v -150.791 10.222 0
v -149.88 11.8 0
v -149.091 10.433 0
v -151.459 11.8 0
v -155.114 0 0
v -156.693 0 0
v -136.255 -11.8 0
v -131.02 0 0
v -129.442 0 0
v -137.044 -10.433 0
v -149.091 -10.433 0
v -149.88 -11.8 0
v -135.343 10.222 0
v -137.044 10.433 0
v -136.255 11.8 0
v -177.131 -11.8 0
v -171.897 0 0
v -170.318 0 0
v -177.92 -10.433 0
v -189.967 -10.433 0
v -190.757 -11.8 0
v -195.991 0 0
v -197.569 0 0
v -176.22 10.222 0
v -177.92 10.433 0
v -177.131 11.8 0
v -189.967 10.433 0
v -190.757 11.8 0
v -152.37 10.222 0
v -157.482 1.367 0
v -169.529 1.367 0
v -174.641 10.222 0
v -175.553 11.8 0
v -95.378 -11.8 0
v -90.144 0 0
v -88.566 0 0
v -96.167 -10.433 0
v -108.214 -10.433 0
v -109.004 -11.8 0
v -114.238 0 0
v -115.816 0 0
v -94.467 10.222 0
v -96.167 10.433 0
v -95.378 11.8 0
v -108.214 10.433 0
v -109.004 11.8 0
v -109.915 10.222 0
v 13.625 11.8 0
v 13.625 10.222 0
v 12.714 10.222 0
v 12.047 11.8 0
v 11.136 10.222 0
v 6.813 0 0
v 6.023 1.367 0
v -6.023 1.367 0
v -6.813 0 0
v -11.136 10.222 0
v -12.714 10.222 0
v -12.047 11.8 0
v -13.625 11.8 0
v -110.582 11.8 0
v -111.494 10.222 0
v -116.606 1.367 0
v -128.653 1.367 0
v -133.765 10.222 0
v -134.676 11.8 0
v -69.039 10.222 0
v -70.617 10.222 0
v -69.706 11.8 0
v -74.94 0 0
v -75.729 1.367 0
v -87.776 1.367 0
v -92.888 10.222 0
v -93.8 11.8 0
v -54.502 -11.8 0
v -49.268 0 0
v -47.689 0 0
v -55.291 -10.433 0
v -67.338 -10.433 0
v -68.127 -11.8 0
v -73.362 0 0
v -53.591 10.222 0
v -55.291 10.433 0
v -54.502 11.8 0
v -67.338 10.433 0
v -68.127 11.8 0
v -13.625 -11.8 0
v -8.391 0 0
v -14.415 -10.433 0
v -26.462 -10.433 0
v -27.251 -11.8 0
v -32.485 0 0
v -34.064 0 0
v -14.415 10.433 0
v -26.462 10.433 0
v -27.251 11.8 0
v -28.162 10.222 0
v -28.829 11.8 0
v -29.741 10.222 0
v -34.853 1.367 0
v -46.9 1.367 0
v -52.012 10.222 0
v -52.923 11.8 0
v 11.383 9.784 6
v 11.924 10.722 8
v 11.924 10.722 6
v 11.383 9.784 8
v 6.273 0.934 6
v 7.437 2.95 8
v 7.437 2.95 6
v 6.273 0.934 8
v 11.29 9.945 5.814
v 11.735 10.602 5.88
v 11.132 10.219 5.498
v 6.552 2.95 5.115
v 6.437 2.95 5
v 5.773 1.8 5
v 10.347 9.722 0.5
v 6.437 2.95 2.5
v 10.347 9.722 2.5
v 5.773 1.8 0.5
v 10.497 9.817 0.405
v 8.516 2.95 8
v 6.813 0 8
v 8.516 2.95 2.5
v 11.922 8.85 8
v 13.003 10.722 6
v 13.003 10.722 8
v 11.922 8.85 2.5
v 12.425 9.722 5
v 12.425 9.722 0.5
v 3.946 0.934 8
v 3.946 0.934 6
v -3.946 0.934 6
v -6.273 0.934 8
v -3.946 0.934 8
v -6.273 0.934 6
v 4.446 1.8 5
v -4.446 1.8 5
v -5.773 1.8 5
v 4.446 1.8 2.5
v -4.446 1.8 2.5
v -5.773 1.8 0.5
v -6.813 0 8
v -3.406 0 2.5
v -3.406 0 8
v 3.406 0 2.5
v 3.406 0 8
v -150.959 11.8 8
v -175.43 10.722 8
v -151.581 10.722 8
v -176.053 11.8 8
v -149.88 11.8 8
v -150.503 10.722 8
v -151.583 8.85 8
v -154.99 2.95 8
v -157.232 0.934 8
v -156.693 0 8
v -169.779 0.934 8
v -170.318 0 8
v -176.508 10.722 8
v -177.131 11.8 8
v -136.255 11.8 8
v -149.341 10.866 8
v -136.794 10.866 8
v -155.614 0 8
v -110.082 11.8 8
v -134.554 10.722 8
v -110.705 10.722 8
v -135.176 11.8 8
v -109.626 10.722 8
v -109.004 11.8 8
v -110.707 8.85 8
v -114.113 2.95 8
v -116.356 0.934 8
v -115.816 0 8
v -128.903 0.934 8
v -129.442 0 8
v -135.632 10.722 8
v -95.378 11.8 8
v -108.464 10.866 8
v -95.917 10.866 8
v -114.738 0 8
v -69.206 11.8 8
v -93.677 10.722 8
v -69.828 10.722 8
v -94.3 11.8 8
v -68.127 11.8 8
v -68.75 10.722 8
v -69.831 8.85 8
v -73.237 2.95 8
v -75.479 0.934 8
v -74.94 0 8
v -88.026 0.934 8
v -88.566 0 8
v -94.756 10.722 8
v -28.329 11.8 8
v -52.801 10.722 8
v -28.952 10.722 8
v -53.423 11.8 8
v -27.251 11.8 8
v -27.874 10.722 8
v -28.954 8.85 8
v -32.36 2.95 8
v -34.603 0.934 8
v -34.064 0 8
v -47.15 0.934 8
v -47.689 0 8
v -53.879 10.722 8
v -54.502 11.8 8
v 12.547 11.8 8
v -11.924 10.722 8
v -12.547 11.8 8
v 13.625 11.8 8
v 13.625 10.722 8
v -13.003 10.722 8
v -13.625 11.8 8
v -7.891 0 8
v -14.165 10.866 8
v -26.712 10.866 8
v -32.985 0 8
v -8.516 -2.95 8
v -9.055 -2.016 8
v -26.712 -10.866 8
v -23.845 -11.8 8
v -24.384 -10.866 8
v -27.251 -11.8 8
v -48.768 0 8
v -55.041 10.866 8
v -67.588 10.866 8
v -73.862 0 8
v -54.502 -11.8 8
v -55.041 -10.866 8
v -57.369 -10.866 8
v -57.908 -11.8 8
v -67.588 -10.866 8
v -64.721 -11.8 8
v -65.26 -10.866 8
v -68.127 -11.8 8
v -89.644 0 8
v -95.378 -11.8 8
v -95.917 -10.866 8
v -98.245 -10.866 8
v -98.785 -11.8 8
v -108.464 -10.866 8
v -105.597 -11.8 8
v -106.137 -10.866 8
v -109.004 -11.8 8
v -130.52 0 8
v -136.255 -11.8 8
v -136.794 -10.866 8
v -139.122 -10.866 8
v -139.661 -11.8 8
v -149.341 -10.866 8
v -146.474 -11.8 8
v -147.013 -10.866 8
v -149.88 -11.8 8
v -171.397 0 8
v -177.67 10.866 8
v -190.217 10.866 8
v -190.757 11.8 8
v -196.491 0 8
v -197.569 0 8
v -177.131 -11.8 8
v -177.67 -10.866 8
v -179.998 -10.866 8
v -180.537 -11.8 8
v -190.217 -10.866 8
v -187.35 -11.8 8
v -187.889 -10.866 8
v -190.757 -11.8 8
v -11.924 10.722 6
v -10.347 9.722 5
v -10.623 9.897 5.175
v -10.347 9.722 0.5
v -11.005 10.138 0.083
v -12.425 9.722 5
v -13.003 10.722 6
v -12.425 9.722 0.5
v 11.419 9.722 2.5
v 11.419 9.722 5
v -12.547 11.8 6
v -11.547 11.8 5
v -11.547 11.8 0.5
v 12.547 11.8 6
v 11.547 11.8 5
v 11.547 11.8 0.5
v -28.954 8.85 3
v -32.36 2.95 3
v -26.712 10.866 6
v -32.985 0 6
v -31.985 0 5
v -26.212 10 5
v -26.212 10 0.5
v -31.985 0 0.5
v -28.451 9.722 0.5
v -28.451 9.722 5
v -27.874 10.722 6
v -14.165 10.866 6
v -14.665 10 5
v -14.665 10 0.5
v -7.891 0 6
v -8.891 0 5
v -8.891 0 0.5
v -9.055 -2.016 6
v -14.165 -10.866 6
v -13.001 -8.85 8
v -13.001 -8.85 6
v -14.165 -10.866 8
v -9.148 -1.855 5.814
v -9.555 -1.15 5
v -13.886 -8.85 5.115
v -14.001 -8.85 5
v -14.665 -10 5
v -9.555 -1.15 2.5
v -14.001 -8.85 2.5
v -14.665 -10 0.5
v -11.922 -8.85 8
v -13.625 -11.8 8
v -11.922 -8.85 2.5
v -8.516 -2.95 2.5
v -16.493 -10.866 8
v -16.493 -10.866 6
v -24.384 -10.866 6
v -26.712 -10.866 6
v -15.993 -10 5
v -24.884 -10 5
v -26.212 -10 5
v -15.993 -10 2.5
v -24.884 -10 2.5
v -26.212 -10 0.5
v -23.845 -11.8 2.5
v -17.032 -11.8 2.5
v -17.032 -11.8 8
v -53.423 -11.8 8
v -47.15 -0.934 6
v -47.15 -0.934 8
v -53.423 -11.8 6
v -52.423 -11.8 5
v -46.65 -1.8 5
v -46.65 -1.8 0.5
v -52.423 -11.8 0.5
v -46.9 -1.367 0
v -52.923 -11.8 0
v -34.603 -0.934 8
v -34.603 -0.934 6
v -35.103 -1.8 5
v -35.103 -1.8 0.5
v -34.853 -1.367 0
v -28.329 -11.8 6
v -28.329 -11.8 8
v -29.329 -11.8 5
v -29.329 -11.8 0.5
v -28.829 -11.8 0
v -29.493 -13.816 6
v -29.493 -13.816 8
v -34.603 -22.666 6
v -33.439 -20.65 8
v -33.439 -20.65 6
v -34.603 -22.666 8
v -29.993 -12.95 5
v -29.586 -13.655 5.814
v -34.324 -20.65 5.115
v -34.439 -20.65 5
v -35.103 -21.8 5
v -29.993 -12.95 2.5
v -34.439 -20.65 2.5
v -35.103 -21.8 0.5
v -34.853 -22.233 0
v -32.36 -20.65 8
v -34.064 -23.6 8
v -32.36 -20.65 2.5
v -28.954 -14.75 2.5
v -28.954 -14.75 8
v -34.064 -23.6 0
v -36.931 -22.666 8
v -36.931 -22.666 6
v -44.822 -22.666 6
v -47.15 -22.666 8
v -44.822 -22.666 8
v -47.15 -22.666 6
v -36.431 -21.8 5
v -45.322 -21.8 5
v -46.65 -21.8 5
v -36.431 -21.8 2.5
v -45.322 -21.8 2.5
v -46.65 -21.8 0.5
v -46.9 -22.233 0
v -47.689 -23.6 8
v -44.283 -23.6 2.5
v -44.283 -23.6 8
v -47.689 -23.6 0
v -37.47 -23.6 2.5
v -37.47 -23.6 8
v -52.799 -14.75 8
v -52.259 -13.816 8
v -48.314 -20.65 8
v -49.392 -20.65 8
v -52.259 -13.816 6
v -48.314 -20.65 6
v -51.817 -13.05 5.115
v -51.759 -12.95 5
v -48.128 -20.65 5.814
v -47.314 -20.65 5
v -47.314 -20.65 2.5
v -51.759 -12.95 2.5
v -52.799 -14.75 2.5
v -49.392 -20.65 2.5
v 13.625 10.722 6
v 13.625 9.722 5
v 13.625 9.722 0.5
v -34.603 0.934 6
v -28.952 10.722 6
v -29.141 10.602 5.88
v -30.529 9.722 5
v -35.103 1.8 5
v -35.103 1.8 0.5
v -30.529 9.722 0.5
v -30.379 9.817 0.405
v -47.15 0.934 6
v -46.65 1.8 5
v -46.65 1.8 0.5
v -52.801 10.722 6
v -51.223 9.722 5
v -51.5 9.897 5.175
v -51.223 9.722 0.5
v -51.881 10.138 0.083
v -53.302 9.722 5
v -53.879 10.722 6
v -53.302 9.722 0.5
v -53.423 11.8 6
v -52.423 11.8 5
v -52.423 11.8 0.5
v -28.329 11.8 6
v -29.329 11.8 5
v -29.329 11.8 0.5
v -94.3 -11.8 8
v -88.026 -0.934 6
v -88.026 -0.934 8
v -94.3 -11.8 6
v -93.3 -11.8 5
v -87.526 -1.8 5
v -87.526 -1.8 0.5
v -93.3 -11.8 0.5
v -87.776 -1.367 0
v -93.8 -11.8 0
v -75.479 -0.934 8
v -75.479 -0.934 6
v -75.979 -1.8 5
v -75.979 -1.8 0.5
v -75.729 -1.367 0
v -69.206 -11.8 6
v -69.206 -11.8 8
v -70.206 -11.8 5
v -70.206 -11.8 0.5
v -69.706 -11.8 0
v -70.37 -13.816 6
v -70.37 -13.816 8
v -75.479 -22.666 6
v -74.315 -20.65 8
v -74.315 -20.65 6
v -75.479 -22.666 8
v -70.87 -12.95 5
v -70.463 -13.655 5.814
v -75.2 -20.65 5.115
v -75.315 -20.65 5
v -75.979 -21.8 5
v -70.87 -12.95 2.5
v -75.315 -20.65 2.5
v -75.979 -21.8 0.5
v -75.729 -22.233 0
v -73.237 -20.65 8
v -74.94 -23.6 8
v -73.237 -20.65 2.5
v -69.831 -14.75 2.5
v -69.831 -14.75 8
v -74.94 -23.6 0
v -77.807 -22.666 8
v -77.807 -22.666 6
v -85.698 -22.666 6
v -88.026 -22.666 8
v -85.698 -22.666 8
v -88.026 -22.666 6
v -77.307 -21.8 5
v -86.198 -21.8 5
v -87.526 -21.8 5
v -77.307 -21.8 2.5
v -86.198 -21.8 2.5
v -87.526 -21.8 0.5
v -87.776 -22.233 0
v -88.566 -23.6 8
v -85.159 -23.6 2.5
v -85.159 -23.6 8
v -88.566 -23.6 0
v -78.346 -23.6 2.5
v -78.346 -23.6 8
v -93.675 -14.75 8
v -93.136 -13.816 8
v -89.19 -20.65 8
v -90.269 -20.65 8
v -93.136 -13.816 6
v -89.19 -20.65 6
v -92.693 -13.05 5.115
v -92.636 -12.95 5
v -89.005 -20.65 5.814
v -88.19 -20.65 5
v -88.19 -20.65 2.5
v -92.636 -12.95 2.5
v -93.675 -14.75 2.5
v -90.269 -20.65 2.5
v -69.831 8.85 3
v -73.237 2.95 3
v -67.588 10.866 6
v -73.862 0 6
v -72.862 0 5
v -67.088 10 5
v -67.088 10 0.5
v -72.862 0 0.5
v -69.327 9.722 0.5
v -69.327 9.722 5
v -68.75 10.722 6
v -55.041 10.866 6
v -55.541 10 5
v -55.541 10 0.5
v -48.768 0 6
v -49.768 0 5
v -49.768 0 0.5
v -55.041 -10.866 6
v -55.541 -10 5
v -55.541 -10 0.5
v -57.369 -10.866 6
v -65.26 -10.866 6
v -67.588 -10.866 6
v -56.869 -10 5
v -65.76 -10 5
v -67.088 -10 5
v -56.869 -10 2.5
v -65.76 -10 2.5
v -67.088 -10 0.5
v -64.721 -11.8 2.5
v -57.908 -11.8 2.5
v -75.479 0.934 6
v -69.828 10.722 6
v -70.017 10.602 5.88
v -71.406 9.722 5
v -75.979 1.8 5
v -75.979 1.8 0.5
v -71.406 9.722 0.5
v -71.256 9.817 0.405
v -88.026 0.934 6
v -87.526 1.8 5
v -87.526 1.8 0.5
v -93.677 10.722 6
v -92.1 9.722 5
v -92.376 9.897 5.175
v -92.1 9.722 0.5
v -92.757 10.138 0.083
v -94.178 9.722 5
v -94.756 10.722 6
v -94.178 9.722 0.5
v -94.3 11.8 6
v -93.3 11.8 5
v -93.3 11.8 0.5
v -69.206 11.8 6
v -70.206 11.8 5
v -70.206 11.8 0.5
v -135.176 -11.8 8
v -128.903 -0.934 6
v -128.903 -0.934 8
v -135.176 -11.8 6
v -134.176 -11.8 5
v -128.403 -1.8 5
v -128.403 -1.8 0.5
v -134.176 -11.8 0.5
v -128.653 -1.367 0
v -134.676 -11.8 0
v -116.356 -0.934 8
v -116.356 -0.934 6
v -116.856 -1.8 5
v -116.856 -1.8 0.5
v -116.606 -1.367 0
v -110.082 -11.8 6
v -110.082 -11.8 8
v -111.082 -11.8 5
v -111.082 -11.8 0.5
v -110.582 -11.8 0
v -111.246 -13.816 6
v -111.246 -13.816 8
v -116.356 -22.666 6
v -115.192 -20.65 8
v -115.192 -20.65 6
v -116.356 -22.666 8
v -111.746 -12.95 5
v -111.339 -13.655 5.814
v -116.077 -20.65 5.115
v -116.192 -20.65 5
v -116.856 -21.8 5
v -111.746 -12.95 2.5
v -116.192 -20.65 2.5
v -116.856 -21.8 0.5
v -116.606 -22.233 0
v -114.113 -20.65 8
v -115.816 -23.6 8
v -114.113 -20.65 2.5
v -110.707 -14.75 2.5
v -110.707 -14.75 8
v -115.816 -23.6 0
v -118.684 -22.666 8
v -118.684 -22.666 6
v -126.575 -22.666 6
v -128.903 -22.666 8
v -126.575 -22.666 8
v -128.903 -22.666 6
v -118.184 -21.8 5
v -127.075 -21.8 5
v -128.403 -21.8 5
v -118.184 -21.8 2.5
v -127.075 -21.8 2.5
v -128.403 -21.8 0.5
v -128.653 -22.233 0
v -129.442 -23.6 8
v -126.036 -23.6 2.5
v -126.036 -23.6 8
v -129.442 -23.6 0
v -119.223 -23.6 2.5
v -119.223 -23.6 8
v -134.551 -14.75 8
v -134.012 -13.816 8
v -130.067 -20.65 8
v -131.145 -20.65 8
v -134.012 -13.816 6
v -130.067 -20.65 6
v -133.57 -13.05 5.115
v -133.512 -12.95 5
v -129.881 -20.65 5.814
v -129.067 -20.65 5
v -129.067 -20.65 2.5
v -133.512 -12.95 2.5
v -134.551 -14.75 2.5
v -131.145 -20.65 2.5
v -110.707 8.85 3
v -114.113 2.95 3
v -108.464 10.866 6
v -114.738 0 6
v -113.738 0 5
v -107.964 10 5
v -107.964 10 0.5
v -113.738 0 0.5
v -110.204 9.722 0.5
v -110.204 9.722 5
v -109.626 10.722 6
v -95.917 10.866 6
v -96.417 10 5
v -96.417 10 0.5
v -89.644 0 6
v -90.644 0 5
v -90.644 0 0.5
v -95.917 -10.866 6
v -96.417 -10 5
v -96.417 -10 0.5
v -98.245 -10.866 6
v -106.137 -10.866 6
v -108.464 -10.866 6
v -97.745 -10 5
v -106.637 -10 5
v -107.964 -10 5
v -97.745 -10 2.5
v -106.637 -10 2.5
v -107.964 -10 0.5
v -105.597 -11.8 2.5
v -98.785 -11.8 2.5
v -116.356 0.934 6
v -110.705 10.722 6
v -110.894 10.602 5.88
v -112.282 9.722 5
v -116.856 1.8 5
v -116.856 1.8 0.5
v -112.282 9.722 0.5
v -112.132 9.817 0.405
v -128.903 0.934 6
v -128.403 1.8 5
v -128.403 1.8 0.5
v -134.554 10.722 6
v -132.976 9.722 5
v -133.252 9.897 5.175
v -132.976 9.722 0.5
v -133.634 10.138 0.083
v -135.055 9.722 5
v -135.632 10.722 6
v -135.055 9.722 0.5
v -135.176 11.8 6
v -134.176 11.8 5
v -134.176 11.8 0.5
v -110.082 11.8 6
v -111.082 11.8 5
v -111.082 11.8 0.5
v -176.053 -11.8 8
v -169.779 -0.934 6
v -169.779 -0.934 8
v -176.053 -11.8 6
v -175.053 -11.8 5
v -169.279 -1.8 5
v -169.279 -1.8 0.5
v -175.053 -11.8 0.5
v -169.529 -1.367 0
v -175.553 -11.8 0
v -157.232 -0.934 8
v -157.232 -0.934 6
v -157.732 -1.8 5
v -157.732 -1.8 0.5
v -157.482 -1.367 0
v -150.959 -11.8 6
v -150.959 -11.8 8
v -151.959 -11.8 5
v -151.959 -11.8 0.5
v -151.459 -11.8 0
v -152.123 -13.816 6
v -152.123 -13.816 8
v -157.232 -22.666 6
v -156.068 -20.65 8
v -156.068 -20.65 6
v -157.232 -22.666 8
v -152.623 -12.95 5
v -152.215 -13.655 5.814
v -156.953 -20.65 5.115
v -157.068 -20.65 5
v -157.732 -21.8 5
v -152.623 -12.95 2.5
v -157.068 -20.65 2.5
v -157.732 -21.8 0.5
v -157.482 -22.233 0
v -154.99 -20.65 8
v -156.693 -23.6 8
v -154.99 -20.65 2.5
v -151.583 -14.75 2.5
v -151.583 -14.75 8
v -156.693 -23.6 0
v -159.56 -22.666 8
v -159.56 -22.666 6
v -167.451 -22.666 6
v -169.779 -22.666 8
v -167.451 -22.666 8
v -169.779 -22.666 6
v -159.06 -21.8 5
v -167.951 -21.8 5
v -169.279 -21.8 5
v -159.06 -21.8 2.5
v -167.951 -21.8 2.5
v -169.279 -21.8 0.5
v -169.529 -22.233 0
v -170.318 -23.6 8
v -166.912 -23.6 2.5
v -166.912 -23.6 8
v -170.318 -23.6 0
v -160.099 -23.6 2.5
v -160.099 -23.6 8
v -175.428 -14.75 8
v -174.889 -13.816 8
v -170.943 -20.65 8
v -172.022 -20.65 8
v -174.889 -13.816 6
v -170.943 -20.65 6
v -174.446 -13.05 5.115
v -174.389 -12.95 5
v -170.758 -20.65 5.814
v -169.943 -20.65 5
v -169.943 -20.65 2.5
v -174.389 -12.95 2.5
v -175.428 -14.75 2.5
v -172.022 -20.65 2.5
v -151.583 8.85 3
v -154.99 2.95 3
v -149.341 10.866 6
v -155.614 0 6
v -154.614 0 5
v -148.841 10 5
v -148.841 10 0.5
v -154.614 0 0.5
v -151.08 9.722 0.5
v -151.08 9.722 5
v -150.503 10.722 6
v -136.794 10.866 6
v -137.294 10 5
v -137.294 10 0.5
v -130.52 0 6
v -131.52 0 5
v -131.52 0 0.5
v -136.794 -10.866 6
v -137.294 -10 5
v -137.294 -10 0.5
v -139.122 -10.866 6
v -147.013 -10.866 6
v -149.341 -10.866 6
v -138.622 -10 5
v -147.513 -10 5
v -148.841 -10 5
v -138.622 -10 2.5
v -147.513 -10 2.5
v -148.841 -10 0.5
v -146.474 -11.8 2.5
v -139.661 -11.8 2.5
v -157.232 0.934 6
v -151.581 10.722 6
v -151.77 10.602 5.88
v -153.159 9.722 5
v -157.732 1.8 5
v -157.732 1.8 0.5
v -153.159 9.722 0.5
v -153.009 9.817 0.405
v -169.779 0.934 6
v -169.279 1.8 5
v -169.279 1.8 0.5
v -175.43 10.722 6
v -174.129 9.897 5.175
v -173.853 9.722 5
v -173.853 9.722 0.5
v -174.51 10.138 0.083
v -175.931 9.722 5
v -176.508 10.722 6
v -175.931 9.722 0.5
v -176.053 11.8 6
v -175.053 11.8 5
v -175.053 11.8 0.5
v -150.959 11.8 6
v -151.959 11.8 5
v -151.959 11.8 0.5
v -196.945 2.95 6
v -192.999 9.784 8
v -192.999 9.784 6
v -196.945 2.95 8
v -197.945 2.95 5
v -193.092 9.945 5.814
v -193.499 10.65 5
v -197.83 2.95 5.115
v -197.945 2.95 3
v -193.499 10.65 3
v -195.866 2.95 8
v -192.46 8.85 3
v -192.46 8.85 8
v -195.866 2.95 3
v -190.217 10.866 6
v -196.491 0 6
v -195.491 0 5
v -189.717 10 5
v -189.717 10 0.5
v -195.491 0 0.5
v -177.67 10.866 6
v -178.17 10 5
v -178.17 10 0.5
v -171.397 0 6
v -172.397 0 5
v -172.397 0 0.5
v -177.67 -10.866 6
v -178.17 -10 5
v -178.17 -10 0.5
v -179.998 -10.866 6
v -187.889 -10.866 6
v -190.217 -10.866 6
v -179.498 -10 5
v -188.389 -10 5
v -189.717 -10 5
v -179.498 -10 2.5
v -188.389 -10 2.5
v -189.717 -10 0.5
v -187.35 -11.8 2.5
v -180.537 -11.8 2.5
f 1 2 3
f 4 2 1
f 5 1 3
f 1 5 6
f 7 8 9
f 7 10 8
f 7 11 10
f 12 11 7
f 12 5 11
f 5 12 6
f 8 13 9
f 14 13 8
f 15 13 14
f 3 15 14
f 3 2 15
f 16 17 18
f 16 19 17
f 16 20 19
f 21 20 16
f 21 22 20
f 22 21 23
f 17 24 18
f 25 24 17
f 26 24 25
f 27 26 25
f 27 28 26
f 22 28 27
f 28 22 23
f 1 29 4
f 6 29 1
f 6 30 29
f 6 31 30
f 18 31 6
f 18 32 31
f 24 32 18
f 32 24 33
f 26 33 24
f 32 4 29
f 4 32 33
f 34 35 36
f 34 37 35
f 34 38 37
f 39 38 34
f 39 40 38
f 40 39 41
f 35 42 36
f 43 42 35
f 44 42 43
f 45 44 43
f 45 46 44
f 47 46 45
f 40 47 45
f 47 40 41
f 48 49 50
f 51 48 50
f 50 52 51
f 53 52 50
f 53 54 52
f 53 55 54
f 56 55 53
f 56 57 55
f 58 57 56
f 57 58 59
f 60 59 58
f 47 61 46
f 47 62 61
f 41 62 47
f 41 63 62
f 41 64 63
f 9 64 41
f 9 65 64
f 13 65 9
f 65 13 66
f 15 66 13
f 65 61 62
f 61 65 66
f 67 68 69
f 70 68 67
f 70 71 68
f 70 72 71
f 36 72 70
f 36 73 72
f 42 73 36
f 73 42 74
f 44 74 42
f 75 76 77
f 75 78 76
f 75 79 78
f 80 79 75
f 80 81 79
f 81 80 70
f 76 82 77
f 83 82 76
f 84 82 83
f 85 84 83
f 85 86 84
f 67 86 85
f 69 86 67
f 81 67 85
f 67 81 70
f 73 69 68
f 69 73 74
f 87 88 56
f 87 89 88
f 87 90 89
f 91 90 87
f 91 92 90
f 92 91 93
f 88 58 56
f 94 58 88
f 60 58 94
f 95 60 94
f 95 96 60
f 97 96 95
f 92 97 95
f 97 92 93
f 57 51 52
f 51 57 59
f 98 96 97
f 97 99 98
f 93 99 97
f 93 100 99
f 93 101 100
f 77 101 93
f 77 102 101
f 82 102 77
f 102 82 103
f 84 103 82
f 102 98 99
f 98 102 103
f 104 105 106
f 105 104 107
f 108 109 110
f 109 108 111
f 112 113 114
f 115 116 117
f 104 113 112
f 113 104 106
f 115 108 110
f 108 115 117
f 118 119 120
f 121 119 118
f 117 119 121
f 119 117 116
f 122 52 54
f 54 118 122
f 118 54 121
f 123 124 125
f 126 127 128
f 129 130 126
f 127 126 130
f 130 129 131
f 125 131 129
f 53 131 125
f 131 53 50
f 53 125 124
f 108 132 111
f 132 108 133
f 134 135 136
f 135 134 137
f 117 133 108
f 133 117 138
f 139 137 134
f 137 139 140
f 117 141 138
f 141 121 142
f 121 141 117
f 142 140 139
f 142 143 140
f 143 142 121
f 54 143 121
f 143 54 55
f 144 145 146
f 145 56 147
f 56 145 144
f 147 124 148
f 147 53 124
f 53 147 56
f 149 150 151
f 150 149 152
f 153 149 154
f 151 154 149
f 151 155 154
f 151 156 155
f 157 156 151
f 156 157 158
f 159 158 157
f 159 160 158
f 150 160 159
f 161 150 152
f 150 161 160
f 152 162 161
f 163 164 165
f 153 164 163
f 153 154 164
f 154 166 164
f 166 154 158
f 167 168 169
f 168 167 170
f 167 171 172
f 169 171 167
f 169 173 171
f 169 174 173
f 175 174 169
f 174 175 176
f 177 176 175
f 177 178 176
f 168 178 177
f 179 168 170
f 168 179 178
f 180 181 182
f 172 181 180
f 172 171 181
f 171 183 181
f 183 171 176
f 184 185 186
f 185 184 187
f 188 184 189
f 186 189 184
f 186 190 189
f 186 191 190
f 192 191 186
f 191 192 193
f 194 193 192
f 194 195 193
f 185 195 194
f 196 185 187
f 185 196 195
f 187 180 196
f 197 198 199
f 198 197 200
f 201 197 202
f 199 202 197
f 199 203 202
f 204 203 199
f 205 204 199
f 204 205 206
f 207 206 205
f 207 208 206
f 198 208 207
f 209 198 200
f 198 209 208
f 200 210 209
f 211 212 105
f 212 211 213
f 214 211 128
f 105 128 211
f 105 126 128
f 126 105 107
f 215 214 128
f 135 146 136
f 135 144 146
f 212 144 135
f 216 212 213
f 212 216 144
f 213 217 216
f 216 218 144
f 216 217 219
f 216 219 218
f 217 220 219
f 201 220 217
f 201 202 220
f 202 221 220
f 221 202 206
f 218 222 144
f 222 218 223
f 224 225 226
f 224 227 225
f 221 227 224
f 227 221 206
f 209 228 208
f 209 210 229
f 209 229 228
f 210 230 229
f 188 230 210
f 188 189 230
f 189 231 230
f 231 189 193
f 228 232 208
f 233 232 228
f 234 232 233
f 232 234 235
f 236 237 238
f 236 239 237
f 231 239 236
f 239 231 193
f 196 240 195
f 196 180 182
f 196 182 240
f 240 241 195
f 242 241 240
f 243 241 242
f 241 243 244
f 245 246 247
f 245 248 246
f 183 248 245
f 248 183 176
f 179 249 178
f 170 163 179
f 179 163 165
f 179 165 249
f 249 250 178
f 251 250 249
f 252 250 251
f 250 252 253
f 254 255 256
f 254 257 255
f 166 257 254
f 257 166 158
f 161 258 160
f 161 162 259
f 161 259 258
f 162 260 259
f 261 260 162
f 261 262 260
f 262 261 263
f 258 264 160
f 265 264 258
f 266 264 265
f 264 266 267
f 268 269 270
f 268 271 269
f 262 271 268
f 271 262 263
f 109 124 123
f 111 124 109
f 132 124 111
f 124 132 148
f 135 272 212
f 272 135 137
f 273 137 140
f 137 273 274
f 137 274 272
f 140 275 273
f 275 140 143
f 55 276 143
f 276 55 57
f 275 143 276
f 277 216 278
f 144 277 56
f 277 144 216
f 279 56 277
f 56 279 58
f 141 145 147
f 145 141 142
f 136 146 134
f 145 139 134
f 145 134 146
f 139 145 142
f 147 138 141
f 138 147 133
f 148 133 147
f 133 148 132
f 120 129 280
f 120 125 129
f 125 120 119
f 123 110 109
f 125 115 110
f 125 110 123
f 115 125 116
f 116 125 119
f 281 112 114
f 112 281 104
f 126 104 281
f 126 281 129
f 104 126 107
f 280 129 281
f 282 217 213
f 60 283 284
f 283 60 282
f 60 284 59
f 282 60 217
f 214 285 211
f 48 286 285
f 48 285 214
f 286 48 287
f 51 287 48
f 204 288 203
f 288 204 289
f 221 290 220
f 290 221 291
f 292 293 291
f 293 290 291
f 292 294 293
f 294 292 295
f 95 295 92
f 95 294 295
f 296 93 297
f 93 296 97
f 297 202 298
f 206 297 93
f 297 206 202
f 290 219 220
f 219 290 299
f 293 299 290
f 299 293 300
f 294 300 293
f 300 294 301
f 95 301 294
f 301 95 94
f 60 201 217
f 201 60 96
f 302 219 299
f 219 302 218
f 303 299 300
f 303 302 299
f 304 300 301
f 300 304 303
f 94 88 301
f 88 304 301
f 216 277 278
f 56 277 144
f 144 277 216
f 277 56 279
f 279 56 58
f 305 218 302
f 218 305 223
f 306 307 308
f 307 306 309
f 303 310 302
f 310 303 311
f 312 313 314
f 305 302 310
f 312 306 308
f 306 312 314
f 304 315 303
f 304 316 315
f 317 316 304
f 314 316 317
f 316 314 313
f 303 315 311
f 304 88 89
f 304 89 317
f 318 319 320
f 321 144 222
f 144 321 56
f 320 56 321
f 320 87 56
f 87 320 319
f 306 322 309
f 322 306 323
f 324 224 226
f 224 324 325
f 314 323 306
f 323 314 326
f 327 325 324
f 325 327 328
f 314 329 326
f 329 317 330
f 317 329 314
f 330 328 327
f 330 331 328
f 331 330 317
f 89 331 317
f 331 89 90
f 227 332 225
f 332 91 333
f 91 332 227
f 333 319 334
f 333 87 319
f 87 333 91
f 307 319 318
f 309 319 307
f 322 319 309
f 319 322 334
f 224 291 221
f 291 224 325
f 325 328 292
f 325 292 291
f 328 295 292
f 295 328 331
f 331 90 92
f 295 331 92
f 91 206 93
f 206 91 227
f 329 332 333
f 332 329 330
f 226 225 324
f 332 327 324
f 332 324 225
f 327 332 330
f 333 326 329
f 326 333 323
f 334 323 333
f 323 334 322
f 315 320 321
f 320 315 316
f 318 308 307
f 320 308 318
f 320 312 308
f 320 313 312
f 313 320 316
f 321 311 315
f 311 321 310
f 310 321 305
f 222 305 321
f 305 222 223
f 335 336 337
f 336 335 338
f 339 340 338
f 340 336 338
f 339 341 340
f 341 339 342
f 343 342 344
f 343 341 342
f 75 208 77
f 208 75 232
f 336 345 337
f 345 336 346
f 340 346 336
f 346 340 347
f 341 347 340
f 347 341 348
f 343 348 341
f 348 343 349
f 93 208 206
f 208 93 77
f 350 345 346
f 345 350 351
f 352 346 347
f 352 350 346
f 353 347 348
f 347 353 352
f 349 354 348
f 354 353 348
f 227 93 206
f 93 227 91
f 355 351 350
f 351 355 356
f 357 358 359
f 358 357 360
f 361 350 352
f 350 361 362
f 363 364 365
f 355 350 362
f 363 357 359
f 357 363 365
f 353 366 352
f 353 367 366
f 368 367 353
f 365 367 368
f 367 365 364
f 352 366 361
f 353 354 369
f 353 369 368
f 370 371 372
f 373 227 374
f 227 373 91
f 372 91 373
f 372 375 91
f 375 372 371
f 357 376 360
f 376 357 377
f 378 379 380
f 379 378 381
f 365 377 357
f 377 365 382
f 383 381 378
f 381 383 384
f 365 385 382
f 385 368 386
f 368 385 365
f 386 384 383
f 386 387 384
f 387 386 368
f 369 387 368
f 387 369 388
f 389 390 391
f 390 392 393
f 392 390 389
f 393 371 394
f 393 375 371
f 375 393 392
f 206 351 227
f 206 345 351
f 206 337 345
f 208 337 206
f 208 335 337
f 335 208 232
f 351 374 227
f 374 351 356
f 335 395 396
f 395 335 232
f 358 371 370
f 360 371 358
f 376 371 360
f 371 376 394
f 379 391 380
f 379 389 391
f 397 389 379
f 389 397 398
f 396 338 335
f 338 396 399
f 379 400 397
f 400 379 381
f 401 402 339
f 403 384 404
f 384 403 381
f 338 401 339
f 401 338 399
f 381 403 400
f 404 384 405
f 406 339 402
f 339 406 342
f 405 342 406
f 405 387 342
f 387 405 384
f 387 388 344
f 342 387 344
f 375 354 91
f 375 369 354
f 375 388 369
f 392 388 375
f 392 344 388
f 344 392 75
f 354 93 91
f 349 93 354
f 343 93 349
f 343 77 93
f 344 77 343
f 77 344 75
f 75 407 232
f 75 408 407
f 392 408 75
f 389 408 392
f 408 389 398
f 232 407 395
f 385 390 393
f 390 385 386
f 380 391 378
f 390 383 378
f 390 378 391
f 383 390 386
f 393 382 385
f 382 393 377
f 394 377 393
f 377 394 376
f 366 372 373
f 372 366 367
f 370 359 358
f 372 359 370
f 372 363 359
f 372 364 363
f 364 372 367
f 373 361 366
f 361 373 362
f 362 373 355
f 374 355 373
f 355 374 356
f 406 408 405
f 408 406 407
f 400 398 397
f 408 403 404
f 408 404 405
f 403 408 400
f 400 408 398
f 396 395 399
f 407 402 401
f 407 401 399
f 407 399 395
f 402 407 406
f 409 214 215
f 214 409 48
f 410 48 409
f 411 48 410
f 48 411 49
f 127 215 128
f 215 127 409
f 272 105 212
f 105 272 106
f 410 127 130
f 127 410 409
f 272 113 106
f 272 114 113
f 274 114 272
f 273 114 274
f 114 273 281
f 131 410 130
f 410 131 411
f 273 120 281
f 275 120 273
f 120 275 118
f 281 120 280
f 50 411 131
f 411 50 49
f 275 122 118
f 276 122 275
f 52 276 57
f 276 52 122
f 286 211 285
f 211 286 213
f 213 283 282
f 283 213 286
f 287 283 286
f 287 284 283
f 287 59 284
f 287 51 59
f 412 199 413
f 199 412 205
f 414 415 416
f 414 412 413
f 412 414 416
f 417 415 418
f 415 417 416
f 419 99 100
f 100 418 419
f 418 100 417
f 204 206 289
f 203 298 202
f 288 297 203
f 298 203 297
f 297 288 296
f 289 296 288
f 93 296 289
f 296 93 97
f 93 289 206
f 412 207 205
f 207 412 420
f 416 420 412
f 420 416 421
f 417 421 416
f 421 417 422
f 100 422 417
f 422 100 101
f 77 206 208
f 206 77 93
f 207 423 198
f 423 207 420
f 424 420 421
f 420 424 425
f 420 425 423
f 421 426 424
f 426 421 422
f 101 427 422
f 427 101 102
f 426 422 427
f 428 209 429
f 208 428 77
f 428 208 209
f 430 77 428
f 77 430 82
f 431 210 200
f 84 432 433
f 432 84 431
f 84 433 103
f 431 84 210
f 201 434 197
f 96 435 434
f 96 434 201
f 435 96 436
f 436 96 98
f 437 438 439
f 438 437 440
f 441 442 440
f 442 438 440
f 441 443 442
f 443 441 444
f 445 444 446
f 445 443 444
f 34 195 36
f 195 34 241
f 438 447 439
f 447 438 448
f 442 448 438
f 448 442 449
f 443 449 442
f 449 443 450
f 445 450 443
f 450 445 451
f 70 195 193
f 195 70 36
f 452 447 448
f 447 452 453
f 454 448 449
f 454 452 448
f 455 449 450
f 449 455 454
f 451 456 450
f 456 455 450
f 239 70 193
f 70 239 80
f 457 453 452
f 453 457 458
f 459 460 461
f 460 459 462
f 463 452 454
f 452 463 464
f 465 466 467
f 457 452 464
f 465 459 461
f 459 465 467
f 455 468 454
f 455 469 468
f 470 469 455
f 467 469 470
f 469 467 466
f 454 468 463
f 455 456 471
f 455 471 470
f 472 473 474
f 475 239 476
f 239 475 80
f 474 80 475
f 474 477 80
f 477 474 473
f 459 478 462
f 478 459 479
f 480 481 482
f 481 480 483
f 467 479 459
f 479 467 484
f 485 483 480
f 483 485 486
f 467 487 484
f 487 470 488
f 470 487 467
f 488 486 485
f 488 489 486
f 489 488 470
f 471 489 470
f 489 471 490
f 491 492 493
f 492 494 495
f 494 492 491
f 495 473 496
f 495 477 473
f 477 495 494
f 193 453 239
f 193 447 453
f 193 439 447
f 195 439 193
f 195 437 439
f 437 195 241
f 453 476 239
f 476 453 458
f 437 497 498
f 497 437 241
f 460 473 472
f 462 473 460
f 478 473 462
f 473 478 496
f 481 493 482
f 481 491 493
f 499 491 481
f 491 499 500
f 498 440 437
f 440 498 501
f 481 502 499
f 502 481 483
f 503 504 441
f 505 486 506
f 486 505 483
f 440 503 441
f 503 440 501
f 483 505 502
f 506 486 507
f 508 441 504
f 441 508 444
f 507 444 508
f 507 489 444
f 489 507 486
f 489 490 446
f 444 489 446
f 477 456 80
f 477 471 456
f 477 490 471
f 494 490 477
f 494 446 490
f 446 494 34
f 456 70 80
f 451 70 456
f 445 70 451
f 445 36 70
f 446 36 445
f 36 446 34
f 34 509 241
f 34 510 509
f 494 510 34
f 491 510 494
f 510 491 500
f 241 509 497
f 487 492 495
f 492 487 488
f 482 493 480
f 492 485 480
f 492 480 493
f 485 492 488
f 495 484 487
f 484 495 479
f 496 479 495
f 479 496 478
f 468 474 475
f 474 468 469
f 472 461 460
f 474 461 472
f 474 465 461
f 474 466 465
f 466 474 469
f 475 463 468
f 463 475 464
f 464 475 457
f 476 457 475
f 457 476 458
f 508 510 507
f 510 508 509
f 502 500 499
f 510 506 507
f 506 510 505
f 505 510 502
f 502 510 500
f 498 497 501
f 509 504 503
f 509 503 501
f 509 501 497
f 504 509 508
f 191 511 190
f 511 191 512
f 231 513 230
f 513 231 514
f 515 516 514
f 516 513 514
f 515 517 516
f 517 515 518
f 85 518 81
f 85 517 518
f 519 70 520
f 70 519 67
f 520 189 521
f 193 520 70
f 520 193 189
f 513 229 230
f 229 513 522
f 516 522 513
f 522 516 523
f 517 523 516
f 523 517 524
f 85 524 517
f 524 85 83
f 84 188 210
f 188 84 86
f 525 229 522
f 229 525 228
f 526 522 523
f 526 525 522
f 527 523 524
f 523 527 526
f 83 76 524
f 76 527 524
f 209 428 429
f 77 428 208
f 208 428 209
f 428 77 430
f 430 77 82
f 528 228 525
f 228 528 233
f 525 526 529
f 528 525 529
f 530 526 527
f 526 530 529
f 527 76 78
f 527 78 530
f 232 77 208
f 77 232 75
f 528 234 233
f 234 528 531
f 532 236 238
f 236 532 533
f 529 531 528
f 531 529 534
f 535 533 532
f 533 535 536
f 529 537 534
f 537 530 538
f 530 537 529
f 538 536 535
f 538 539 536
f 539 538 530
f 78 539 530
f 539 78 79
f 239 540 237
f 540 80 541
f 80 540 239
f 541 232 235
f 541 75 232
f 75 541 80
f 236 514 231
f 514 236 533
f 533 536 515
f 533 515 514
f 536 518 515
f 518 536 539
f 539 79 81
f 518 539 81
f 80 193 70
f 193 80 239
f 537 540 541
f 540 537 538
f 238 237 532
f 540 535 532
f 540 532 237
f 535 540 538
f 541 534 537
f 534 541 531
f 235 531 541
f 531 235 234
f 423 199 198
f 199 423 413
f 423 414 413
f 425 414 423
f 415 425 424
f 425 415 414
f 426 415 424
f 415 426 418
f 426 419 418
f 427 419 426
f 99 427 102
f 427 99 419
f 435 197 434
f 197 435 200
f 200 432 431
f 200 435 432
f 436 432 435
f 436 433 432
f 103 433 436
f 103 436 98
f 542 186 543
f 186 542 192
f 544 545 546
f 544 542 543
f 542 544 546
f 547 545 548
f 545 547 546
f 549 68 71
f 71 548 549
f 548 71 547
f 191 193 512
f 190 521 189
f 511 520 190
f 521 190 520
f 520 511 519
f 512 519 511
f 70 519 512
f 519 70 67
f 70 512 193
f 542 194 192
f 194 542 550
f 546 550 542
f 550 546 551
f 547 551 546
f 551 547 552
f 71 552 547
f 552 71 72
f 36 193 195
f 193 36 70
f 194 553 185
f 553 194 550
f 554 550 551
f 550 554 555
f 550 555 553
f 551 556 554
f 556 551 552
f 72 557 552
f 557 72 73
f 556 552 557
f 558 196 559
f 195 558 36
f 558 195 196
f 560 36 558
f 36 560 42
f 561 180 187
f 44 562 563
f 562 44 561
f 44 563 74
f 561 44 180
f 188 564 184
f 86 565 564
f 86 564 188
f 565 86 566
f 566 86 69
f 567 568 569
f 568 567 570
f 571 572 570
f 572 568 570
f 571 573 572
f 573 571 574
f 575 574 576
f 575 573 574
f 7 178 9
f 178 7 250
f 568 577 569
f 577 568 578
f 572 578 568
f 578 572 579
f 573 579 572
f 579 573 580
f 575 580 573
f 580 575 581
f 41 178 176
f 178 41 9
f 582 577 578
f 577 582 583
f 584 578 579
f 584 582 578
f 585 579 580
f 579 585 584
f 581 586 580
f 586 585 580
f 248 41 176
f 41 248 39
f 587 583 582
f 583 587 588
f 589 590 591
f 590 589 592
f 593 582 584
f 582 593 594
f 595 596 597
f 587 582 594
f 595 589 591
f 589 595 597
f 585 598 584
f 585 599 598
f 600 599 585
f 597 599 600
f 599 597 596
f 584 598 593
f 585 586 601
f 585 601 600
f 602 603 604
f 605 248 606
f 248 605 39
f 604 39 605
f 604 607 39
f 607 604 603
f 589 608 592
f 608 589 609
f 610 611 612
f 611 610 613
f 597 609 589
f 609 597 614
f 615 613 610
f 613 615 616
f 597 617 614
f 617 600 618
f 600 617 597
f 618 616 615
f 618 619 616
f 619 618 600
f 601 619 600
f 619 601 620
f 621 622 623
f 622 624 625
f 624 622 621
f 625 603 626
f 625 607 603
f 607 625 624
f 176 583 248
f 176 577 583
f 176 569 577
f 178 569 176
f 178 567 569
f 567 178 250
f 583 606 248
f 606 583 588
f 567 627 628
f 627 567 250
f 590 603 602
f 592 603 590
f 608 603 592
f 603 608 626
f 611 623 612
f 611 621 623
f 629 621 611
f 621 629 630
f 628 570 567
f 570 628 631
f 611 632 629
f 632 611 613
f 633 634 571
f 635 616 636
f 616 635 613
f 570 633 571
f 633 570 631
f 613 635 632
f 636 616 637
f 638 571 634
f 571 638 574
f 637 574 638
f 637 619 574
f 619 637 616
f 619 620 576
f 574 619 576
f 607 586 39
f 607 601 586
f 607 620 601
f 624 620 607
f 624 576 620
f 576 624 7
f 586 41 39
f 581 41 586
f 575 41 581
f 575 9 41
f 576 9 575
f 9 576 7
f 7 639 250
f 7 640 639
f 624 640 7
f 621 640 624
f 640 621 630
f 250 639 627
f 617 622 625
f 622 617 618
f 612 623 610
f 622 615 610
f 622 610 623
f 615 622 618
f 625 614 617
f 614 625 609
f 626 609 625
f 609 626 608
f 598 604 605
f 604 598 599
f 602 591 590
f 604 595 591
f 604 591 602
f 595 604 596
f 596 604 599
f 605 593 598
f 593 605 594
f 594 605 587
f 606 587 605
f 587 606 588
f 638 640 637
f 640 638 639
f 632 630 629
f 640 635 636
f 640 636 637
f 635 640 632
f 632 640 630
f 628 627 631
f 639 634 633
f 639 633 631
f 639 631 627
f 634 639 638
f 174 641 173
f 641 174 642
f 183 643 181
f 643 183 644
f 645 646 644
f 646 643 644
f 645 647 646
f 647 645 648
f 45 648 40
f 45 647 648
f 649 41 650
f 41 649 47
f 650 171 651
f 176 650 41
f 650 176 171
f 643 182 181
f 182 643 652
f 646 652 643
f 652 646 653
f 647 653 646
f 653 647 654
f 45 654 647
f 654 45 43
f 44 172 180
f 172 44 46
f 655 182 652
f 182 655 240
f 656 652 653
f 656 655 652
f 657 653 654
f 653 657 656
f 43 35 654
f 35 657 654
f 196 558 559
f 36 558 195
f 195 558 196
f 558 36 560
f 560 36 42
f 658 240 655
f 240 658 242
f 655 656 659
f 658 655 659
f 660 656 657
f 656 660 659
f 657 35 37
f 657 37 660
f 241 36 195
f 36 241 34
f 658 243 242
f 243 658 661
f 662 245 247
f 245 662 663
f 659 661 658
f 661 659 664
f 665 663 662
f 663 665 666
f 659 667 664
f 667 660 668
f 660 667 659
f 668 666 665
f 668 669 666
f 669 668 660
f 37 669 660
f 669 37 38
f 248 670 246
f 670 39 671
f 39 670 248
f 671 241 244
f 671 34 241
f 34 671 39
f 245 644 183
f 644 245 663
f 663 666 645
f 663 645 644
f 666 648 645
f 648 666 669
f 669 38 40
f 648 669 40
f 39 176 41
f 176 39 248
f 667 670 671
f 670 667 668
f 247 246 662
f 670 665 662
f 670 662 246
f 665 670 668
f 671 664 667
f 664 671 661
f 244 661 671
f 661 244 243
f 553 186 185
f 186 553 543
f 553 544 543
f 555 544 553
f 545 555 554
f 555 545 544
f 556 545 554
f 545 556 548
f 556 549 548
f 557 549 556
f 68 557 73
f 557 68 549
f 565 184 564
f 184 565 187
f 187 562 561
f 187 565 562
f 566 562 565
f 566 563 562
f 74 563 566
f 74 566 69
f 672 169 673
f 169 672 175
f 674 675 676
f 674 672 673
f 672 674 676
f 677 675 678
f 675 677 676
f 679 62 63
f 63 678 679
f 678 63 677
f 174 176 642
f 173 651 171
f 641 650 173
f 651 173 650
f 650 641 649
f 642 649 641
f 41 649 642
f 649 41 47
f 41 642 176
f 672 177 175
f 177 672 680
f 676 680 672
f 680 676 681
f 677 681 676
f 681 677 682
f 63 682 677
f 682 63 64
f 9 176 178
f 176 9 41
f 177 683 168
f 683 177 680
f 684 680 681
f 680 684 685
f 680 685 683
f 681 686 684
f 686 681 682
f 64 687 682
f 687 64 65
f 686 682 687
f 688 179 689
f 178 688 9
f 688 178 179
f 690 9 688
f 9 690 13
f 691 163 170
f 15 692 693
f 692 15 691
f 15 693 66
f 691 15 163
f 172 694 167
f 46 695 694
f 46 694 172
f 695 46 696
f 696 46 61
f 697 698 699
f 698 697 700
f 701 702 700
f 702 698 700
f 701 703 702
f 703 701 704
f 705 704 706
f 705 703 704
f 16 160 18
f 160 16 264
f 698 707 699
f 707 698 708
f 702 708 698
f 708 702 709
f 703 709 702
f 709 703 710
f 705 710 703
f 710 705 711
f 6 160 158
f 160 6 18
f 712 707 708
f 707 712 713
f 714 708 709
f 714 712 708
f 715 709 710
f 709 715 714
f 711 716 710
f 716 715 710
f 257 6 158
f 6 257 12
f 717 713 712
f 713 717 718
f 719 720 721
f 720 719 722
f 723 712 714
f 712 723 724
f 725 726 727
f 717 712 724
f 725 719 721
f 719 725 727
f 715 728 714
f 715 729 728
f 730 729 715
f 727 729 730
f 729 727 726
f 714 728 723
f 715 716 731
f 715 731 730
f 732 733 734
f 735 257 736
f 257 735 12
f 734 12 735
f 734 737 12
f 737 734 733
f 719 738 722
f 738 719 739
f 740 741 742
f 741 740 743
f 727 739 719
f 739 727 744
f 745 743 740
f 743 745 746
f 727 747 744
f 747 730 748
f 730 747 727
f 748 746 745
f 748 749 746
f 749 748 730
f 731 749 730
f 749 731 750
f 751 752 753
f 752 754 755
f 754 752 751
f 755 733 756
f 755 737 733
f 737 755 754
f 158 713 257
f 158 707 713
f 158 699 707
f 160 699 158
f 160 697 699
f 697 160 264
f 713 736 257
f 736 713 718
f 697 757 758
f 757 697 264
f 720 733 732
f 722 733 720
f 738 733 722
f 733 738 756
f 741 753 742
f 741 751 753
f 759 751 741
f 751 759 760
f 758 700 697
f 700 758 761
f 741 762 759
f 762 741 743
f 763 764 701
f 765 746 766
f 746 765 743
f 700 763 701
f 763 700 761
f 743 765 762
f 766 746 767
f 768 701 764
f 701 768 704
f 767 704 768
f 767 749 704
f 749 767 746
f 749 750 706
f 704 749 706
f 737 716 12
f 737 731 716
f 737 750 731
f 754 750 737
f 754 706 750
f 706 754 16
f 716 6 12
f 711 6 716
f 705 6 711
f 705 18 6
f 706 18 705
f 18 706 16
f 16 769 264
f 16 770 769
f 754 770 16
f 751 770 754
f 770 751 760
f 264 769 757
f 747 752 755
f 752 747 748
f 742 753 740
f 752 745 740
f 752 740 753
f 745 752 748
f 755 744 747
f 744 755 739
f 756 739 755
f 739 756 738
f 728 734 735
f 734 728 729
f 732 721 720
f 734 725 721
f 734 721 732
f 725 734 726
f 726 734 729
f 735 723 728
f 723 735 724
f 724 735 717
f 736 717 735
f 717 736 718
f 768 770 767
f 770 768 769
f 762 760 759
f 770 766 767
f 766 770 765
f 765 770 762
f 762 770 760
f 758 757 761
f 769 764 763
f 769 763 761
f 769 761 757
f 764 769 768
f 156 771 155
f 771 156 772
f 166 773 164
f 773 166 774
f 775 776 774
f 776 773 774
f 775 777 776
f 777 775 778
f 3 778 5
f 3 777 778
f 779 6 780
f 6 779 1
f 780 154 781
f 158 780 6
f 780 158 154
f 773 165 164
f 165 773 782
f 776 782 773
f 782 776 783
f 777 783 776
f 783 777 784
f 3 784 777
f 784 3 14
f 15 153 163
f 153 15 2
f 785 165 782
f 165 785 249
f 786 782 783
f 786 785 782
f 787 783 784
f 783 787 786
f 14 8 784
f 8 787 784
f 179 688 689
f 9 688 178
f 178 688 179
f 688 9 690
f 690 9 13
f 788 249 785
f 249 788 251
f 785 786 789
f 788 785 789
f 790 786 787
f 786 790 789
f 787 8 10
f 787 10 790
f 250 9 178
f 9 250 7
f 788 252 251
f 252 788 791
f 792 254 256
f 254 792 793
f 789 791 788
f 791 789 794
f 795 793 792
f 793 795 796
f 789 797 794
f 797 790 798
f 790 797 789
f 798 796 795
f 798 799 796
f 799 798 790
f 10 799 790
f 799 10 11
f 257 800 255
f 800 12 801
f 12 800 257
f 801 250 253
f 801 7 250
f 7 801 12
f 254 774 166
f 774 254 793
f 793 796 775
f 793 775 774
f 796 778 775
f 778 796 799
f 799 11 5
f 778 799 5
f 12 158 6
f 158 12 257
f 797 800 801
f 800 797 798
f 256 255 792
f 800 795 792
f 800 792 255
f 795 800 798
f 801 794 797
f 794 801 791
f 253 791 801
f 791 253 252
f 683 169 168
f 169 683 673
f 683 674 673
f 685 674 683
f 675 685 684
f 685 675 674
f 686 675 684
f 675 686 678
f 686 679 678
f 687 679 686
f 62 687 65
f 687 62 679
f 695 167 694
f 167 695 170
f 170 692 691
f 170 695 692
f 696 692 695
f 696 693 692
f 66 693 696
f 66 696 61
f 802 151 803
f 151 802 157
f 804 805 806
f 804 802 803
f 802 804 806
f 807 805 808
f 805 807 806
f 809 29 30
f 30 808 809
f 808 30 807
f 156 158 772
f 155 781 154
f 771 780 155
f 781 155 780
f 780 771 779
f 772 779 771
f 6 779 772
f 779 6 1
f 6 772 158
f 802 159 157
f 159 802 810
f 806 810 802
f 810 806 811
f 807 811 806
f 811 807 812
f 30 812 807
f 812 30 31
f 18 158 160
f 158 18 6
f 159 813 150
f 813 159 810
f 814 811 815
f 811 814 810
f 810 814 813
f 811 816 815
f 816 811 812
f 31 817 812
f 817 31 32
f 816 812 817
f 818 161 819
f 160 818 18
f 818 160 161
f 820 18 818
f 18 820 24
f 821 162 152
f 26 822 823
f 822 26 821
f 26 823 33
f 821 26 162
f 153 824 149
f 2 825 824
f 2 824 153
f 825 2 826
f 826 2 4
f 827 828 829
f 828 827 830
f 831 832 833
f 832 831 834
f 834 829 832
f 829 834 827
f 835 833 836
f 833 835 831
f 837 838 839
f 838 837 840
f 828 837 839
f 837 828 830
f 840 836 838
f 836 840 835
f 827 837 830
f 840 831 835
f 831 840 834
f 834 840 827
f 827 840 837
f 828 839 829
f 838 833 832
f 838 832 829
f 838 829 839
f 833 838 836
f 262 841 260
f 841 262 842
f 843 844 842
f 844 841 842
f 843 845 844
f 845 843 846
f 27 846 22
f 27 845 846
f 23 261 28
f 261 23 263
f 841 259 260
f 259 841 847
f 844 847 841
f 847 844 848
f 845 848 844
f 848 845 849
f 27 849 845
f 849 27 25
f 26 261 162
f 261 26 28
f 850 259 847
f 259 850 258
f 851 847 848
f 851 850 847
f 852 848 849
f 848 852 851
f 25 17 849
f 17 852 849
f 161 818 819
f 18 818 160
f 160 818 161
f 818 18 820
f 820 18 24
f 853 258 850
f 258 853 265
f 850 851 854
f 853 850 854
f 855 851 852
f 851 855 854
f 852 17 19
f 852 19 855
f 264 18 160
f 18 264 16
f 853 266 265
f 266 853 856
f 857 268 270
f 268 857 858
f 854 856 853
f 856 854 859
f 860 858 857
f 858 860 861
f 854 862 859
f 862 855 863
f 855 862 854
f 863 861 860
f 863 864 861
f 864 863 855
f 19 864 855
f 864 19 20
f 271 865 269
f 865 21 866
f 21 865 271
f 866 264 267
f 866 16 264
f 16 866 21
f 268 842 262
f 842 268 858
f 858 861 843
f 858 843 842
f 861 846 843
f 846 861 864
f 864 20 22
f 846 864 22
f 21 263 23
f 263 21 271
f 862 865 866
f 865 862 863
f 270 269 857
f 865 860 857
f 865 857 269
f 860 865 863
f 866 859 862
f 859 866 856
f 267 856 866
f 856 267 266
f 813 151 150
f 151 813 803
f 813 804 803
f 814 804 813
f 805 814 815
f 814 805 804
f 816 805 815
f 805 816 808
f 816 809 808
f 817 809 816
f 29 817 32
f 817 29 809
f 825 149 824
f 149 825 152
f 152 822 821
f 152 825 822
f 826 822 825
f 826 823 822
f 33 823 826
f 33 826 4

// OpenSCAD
// file: honeycomb_element.scad
$fn = 50;

radius = 13.6;
diameter = radius * 2;

h_inner = 10;
r_inner = h_inner * 2 / sqrt(3);

h_outer = 10 + 1.8;
r_outer = h_outer * 2 / sqrt(3);

h_thin = 10 + 1;
r_thin = h_thin * 2 / sqrt(3);

total_height = 8;

small_value = 0.1;

clips_height = 5;
clips_offset = 0.5;
clips_side_offset = 0.00;

module basic_polygon() {
  polygon(
    [
      [r_outer, total_height],
      [r_outer, 0],
      [r_inner + 0.5, 0],
      [r_inner, 0.5],
      [r_inner, total_height - 3],
      [r_inner + 1, total_height - 2],
      [r_inner + 1, total_height],
    ]
  );
}

module basic_model() {
  rotate_extrude($fn=6) {
    basic_polygon();
  }
}

module panel_with_clips(pin_1 = false, pin_2 = false, pin_3 = false, pin_4 = false, pin_5 = false, pin_6 = false, slot_1 = false, slot_2 = false, slot_3 = false, slot_4 = false, slot_5 = false, slot_6 = false) {

  difference() {
    basic_model();

    if (slot_1) {
      rotate([0, 0, 0])
        translate([0, -h_outer * 2, total_height - (clips_height + clips_offset) / 2])
          linear_extrude(height=clips_height + clips_offset, center=true)
            polygon([[clips_side_offset, h_outer / 2], [-clips_side_offset, h_outer / 2], [-r_outer / 2 - clips_side_offset, h_outer * 1.5], [r_outer / 2 + clips_side_offset, h_outer * 1.5]]);
    }

    if (slot_2) {
      rotate([0, 0, 60])
        translate([0, -h_outer * 2, total_height - (clips_height + clips_offset) / 2])
          linear_extrude(height=clips_height + clips_offset, center=true)
            polygon([[clips_side_offset, h_outer / 2], [-clips_side_offset, h_outer / 2], [-r_outer / 2 - clips_side_offset, h_outer * 1.5], [r_outer / 2 + clips_side_offset, h_outer * 1.5]]);
    }

    if (slot_3) {
      rotate([0, 0, 120])
        translate([0, -h_outer * 2, total_height - (clips_height + clips_offset) / 2])
          linear_extrude(height=clips_height + clips_offset, center=true)
            polygon([[clips_side_offset, h_outer / 2], [-clips_side_offset, h_outer / 2], [-r_outer / 2 - clips_side_offset, h_outer * 1.5], [r_outer / 2 + clips_side_offset, h_outer * 1.5]]);
    }

    if (slot_4) {
      rotate([0, 0, 180])
        translate([0, -h_outer * 2, total_height - (clips_height + clips_offset) / 2])
          linear_extrude(height=clips_height + clips_offset, center=true)
            polygon([[clips_side_offset, h_outer / 2], [-clips_side_offset, h_outer / 2], [-r_outer / 2 - clips_side_offset, h_outer * 1.5], [r_outer / 2 + clips_side_offset, h_outer * 1.5]]);
    }

    if (slot_5) {
      rotate([0, 0, 240])
        translate([0, -h_outer * 2, total_height - (clips_height + clips_offset) / 2])
          linear_extrude(height=clips_height + clips_offset, center=true)
            polygon([[clips_side_offset, h_outer / 2], [-clips_side_offset, h_outer / 2], [-r_outer / 2 - clips_side_offset, h_outer * 1.5], [r_outer / 2 + clips_side_offset, h_outer * 1.5]]);
    }

    if (slot_6) {
      rotate([0, 0, 300])
        translate([0, -h_outer * 2, total_height - (clips_height + clips_offset) / 2])
          linear_extrude(height=clips_height + clips_offset, center=true)
            polygon([[clips_side_offset, h_outer / 2], [-clips_side_offset, h_outer / 2], [-r_outer / 2 - clips_side_offset, h_outer * 1.5], [r_outer / 2 + clips_side_offset, h_outer * 1.5]]);
    }
  }

  if (pin_1) {
    intersection() {
      translate([0, -h_outer * 2, 0])
        basic_model();
      translate([0, 0, total_height - clips_height / 2]) {
        rotate([0, 0, -180])
          linear_extrude(height=clips_height, center=true)
            polygon([[0, h_outer / 2], [-r_outer / 2, h_outer * 1.5], [r_outer / 2, h_outer * 1.5]]);
      }
    }
  }

  if (pin_2) {
    intersection() {
      translate([r_outer * 1.5, -h_outer, 0])
        basic_model();
      translate([0, 0, total_height - clips_height / 2]) {
        rotate([0, 0, -120])
          linear_extrude(height=clips_height, center=true)
            polygon([[0, h_outer / 2], [-r_outer / 2, h_outer * 1.5], [r_outer / 2, h_outer * 1.5]]);
      }
    }
  }

  if (pin_3) {
    intersection() {
      translate([r_outer * 1.5, h_outer, 0])
        basic_model();
      translate([0, 0, total_height - clips_height / 2]) {
        rotate([0, 0, -60])
          linear_extrude(height=clips_height, center=true)
            polygon([[0, h_outer / 2], [-r_outer / 2, h_outer * 1.5], [r_outer / 2, h_outer * 1.5]]);
      }
    }
  }

  if (pin_4) {
    intersection() {
      translate([0, h_outer * 2, 0])
        basic_model();

      translate([0, 0, total_height - clips_height / 2]) {
        linear_extrude(height=clips_height, center=true)
          polygon([[0, h_outer / 2], [-r_outer / 2, h_outer * 1.5], [r_outer / 2, h_outer * 1.5]]);
      }
    }
  }

  if (pin_5) {
    intersection() {
      translate([-r_outer * 1.5, h_outer, 0])
        basic_model();
      translate([0, 0, total_height - clips_height / 2]) {
        rotate([0, 0, 60])
          linear_extrude(height=clips_height, center=true)
            polygon([[0, h_outer / 2], [-r_outer / 2, h_outer * 1.5], [r_outer / 2, h_outer * 1.5]]);
      }
    }
  }

  if (pin_6) {
    intersection() {
      translate([-r_outer * 1.5, -h_outer, 0])
        basic_model();

      translate([0, 0, total_height - clips_height / 2]) {
        rotate([0, 0, 120])
          linear_extrude(height=clips_height, center=true)
            polygon([[0, h_outer / 2], [-r_outer / 2, h_outer * 1.5], [r_outer / 2, h_outer * 1.5]]);
      }
    }
  }
}

// end honeycomb_element.scad
// main file
$fn = 50;

h_outer = 10+1.8;
r_outer = h_outer * 2/sqrt(3);


use <honeycomb_element.scad>;

module perimeter_top_item(left_slot=false, inner_slot=false, middle_slot=false) {
  difference() {
    translate([0, h_outer, 0])
        panel_with_clips(slot_1=inner_slot, slot_2=left_slot);  
    
    translate([0, 50+h_outer, 0])
        cube([100, 100, 100], center = true);
  }
  
  translate([-r_outer*1.5, 0, 0])
     panel_with_clips(slot_1=true, slot_2=middle_slot,  pin_5=true); 
  
  translate([-r_outer*3, -h_outer, 0])
     panel_with_clips(slot_1=true, slot_2=true, slot_6=true);   
  
    
  translate([0, h_outer-r_outer, 0])
      rotate([90, 0, 90])
        linear_extrude(height = r_outer * 2, center=true)
        basic_polygon();
    
}




module perimeter_bottom() {
    
    perimeter_top_item(left_slot=true, inner_slot=true, middle_slot=true);
    
    translate([-3*r_outer, 0, 0])
      perimeter_top_item();

    translate([-6*r_outer, 0, 0])
      perimeter_top_item();    
    
    translate([-9*r_outer, 0, 0])
      perimeter_top_item();    
    
    
    
    translate([-12*r_outer, 0, 0]){
       
      difference() {
        translate([0, h_outer, 0])
          panel_with_clips();  
    
        translate([0, 50+h_outer, 0])
          cube([100, 100, 100], center = true);
      }

       
    }  
    translate([-12*r_outer, h_outer-r_outer, 0]){
      rotate([90, 0, 90])
        linear_extrude(height = r_outer * 2, center=true)
        basic_polygon();
       
      
       
    }   
   
    translate([-r_outer*13.5, 0, 0])
      panel_with_clips(slot_1=true,   pin_5=true); 
   
  
}

perimeter_bottom();
